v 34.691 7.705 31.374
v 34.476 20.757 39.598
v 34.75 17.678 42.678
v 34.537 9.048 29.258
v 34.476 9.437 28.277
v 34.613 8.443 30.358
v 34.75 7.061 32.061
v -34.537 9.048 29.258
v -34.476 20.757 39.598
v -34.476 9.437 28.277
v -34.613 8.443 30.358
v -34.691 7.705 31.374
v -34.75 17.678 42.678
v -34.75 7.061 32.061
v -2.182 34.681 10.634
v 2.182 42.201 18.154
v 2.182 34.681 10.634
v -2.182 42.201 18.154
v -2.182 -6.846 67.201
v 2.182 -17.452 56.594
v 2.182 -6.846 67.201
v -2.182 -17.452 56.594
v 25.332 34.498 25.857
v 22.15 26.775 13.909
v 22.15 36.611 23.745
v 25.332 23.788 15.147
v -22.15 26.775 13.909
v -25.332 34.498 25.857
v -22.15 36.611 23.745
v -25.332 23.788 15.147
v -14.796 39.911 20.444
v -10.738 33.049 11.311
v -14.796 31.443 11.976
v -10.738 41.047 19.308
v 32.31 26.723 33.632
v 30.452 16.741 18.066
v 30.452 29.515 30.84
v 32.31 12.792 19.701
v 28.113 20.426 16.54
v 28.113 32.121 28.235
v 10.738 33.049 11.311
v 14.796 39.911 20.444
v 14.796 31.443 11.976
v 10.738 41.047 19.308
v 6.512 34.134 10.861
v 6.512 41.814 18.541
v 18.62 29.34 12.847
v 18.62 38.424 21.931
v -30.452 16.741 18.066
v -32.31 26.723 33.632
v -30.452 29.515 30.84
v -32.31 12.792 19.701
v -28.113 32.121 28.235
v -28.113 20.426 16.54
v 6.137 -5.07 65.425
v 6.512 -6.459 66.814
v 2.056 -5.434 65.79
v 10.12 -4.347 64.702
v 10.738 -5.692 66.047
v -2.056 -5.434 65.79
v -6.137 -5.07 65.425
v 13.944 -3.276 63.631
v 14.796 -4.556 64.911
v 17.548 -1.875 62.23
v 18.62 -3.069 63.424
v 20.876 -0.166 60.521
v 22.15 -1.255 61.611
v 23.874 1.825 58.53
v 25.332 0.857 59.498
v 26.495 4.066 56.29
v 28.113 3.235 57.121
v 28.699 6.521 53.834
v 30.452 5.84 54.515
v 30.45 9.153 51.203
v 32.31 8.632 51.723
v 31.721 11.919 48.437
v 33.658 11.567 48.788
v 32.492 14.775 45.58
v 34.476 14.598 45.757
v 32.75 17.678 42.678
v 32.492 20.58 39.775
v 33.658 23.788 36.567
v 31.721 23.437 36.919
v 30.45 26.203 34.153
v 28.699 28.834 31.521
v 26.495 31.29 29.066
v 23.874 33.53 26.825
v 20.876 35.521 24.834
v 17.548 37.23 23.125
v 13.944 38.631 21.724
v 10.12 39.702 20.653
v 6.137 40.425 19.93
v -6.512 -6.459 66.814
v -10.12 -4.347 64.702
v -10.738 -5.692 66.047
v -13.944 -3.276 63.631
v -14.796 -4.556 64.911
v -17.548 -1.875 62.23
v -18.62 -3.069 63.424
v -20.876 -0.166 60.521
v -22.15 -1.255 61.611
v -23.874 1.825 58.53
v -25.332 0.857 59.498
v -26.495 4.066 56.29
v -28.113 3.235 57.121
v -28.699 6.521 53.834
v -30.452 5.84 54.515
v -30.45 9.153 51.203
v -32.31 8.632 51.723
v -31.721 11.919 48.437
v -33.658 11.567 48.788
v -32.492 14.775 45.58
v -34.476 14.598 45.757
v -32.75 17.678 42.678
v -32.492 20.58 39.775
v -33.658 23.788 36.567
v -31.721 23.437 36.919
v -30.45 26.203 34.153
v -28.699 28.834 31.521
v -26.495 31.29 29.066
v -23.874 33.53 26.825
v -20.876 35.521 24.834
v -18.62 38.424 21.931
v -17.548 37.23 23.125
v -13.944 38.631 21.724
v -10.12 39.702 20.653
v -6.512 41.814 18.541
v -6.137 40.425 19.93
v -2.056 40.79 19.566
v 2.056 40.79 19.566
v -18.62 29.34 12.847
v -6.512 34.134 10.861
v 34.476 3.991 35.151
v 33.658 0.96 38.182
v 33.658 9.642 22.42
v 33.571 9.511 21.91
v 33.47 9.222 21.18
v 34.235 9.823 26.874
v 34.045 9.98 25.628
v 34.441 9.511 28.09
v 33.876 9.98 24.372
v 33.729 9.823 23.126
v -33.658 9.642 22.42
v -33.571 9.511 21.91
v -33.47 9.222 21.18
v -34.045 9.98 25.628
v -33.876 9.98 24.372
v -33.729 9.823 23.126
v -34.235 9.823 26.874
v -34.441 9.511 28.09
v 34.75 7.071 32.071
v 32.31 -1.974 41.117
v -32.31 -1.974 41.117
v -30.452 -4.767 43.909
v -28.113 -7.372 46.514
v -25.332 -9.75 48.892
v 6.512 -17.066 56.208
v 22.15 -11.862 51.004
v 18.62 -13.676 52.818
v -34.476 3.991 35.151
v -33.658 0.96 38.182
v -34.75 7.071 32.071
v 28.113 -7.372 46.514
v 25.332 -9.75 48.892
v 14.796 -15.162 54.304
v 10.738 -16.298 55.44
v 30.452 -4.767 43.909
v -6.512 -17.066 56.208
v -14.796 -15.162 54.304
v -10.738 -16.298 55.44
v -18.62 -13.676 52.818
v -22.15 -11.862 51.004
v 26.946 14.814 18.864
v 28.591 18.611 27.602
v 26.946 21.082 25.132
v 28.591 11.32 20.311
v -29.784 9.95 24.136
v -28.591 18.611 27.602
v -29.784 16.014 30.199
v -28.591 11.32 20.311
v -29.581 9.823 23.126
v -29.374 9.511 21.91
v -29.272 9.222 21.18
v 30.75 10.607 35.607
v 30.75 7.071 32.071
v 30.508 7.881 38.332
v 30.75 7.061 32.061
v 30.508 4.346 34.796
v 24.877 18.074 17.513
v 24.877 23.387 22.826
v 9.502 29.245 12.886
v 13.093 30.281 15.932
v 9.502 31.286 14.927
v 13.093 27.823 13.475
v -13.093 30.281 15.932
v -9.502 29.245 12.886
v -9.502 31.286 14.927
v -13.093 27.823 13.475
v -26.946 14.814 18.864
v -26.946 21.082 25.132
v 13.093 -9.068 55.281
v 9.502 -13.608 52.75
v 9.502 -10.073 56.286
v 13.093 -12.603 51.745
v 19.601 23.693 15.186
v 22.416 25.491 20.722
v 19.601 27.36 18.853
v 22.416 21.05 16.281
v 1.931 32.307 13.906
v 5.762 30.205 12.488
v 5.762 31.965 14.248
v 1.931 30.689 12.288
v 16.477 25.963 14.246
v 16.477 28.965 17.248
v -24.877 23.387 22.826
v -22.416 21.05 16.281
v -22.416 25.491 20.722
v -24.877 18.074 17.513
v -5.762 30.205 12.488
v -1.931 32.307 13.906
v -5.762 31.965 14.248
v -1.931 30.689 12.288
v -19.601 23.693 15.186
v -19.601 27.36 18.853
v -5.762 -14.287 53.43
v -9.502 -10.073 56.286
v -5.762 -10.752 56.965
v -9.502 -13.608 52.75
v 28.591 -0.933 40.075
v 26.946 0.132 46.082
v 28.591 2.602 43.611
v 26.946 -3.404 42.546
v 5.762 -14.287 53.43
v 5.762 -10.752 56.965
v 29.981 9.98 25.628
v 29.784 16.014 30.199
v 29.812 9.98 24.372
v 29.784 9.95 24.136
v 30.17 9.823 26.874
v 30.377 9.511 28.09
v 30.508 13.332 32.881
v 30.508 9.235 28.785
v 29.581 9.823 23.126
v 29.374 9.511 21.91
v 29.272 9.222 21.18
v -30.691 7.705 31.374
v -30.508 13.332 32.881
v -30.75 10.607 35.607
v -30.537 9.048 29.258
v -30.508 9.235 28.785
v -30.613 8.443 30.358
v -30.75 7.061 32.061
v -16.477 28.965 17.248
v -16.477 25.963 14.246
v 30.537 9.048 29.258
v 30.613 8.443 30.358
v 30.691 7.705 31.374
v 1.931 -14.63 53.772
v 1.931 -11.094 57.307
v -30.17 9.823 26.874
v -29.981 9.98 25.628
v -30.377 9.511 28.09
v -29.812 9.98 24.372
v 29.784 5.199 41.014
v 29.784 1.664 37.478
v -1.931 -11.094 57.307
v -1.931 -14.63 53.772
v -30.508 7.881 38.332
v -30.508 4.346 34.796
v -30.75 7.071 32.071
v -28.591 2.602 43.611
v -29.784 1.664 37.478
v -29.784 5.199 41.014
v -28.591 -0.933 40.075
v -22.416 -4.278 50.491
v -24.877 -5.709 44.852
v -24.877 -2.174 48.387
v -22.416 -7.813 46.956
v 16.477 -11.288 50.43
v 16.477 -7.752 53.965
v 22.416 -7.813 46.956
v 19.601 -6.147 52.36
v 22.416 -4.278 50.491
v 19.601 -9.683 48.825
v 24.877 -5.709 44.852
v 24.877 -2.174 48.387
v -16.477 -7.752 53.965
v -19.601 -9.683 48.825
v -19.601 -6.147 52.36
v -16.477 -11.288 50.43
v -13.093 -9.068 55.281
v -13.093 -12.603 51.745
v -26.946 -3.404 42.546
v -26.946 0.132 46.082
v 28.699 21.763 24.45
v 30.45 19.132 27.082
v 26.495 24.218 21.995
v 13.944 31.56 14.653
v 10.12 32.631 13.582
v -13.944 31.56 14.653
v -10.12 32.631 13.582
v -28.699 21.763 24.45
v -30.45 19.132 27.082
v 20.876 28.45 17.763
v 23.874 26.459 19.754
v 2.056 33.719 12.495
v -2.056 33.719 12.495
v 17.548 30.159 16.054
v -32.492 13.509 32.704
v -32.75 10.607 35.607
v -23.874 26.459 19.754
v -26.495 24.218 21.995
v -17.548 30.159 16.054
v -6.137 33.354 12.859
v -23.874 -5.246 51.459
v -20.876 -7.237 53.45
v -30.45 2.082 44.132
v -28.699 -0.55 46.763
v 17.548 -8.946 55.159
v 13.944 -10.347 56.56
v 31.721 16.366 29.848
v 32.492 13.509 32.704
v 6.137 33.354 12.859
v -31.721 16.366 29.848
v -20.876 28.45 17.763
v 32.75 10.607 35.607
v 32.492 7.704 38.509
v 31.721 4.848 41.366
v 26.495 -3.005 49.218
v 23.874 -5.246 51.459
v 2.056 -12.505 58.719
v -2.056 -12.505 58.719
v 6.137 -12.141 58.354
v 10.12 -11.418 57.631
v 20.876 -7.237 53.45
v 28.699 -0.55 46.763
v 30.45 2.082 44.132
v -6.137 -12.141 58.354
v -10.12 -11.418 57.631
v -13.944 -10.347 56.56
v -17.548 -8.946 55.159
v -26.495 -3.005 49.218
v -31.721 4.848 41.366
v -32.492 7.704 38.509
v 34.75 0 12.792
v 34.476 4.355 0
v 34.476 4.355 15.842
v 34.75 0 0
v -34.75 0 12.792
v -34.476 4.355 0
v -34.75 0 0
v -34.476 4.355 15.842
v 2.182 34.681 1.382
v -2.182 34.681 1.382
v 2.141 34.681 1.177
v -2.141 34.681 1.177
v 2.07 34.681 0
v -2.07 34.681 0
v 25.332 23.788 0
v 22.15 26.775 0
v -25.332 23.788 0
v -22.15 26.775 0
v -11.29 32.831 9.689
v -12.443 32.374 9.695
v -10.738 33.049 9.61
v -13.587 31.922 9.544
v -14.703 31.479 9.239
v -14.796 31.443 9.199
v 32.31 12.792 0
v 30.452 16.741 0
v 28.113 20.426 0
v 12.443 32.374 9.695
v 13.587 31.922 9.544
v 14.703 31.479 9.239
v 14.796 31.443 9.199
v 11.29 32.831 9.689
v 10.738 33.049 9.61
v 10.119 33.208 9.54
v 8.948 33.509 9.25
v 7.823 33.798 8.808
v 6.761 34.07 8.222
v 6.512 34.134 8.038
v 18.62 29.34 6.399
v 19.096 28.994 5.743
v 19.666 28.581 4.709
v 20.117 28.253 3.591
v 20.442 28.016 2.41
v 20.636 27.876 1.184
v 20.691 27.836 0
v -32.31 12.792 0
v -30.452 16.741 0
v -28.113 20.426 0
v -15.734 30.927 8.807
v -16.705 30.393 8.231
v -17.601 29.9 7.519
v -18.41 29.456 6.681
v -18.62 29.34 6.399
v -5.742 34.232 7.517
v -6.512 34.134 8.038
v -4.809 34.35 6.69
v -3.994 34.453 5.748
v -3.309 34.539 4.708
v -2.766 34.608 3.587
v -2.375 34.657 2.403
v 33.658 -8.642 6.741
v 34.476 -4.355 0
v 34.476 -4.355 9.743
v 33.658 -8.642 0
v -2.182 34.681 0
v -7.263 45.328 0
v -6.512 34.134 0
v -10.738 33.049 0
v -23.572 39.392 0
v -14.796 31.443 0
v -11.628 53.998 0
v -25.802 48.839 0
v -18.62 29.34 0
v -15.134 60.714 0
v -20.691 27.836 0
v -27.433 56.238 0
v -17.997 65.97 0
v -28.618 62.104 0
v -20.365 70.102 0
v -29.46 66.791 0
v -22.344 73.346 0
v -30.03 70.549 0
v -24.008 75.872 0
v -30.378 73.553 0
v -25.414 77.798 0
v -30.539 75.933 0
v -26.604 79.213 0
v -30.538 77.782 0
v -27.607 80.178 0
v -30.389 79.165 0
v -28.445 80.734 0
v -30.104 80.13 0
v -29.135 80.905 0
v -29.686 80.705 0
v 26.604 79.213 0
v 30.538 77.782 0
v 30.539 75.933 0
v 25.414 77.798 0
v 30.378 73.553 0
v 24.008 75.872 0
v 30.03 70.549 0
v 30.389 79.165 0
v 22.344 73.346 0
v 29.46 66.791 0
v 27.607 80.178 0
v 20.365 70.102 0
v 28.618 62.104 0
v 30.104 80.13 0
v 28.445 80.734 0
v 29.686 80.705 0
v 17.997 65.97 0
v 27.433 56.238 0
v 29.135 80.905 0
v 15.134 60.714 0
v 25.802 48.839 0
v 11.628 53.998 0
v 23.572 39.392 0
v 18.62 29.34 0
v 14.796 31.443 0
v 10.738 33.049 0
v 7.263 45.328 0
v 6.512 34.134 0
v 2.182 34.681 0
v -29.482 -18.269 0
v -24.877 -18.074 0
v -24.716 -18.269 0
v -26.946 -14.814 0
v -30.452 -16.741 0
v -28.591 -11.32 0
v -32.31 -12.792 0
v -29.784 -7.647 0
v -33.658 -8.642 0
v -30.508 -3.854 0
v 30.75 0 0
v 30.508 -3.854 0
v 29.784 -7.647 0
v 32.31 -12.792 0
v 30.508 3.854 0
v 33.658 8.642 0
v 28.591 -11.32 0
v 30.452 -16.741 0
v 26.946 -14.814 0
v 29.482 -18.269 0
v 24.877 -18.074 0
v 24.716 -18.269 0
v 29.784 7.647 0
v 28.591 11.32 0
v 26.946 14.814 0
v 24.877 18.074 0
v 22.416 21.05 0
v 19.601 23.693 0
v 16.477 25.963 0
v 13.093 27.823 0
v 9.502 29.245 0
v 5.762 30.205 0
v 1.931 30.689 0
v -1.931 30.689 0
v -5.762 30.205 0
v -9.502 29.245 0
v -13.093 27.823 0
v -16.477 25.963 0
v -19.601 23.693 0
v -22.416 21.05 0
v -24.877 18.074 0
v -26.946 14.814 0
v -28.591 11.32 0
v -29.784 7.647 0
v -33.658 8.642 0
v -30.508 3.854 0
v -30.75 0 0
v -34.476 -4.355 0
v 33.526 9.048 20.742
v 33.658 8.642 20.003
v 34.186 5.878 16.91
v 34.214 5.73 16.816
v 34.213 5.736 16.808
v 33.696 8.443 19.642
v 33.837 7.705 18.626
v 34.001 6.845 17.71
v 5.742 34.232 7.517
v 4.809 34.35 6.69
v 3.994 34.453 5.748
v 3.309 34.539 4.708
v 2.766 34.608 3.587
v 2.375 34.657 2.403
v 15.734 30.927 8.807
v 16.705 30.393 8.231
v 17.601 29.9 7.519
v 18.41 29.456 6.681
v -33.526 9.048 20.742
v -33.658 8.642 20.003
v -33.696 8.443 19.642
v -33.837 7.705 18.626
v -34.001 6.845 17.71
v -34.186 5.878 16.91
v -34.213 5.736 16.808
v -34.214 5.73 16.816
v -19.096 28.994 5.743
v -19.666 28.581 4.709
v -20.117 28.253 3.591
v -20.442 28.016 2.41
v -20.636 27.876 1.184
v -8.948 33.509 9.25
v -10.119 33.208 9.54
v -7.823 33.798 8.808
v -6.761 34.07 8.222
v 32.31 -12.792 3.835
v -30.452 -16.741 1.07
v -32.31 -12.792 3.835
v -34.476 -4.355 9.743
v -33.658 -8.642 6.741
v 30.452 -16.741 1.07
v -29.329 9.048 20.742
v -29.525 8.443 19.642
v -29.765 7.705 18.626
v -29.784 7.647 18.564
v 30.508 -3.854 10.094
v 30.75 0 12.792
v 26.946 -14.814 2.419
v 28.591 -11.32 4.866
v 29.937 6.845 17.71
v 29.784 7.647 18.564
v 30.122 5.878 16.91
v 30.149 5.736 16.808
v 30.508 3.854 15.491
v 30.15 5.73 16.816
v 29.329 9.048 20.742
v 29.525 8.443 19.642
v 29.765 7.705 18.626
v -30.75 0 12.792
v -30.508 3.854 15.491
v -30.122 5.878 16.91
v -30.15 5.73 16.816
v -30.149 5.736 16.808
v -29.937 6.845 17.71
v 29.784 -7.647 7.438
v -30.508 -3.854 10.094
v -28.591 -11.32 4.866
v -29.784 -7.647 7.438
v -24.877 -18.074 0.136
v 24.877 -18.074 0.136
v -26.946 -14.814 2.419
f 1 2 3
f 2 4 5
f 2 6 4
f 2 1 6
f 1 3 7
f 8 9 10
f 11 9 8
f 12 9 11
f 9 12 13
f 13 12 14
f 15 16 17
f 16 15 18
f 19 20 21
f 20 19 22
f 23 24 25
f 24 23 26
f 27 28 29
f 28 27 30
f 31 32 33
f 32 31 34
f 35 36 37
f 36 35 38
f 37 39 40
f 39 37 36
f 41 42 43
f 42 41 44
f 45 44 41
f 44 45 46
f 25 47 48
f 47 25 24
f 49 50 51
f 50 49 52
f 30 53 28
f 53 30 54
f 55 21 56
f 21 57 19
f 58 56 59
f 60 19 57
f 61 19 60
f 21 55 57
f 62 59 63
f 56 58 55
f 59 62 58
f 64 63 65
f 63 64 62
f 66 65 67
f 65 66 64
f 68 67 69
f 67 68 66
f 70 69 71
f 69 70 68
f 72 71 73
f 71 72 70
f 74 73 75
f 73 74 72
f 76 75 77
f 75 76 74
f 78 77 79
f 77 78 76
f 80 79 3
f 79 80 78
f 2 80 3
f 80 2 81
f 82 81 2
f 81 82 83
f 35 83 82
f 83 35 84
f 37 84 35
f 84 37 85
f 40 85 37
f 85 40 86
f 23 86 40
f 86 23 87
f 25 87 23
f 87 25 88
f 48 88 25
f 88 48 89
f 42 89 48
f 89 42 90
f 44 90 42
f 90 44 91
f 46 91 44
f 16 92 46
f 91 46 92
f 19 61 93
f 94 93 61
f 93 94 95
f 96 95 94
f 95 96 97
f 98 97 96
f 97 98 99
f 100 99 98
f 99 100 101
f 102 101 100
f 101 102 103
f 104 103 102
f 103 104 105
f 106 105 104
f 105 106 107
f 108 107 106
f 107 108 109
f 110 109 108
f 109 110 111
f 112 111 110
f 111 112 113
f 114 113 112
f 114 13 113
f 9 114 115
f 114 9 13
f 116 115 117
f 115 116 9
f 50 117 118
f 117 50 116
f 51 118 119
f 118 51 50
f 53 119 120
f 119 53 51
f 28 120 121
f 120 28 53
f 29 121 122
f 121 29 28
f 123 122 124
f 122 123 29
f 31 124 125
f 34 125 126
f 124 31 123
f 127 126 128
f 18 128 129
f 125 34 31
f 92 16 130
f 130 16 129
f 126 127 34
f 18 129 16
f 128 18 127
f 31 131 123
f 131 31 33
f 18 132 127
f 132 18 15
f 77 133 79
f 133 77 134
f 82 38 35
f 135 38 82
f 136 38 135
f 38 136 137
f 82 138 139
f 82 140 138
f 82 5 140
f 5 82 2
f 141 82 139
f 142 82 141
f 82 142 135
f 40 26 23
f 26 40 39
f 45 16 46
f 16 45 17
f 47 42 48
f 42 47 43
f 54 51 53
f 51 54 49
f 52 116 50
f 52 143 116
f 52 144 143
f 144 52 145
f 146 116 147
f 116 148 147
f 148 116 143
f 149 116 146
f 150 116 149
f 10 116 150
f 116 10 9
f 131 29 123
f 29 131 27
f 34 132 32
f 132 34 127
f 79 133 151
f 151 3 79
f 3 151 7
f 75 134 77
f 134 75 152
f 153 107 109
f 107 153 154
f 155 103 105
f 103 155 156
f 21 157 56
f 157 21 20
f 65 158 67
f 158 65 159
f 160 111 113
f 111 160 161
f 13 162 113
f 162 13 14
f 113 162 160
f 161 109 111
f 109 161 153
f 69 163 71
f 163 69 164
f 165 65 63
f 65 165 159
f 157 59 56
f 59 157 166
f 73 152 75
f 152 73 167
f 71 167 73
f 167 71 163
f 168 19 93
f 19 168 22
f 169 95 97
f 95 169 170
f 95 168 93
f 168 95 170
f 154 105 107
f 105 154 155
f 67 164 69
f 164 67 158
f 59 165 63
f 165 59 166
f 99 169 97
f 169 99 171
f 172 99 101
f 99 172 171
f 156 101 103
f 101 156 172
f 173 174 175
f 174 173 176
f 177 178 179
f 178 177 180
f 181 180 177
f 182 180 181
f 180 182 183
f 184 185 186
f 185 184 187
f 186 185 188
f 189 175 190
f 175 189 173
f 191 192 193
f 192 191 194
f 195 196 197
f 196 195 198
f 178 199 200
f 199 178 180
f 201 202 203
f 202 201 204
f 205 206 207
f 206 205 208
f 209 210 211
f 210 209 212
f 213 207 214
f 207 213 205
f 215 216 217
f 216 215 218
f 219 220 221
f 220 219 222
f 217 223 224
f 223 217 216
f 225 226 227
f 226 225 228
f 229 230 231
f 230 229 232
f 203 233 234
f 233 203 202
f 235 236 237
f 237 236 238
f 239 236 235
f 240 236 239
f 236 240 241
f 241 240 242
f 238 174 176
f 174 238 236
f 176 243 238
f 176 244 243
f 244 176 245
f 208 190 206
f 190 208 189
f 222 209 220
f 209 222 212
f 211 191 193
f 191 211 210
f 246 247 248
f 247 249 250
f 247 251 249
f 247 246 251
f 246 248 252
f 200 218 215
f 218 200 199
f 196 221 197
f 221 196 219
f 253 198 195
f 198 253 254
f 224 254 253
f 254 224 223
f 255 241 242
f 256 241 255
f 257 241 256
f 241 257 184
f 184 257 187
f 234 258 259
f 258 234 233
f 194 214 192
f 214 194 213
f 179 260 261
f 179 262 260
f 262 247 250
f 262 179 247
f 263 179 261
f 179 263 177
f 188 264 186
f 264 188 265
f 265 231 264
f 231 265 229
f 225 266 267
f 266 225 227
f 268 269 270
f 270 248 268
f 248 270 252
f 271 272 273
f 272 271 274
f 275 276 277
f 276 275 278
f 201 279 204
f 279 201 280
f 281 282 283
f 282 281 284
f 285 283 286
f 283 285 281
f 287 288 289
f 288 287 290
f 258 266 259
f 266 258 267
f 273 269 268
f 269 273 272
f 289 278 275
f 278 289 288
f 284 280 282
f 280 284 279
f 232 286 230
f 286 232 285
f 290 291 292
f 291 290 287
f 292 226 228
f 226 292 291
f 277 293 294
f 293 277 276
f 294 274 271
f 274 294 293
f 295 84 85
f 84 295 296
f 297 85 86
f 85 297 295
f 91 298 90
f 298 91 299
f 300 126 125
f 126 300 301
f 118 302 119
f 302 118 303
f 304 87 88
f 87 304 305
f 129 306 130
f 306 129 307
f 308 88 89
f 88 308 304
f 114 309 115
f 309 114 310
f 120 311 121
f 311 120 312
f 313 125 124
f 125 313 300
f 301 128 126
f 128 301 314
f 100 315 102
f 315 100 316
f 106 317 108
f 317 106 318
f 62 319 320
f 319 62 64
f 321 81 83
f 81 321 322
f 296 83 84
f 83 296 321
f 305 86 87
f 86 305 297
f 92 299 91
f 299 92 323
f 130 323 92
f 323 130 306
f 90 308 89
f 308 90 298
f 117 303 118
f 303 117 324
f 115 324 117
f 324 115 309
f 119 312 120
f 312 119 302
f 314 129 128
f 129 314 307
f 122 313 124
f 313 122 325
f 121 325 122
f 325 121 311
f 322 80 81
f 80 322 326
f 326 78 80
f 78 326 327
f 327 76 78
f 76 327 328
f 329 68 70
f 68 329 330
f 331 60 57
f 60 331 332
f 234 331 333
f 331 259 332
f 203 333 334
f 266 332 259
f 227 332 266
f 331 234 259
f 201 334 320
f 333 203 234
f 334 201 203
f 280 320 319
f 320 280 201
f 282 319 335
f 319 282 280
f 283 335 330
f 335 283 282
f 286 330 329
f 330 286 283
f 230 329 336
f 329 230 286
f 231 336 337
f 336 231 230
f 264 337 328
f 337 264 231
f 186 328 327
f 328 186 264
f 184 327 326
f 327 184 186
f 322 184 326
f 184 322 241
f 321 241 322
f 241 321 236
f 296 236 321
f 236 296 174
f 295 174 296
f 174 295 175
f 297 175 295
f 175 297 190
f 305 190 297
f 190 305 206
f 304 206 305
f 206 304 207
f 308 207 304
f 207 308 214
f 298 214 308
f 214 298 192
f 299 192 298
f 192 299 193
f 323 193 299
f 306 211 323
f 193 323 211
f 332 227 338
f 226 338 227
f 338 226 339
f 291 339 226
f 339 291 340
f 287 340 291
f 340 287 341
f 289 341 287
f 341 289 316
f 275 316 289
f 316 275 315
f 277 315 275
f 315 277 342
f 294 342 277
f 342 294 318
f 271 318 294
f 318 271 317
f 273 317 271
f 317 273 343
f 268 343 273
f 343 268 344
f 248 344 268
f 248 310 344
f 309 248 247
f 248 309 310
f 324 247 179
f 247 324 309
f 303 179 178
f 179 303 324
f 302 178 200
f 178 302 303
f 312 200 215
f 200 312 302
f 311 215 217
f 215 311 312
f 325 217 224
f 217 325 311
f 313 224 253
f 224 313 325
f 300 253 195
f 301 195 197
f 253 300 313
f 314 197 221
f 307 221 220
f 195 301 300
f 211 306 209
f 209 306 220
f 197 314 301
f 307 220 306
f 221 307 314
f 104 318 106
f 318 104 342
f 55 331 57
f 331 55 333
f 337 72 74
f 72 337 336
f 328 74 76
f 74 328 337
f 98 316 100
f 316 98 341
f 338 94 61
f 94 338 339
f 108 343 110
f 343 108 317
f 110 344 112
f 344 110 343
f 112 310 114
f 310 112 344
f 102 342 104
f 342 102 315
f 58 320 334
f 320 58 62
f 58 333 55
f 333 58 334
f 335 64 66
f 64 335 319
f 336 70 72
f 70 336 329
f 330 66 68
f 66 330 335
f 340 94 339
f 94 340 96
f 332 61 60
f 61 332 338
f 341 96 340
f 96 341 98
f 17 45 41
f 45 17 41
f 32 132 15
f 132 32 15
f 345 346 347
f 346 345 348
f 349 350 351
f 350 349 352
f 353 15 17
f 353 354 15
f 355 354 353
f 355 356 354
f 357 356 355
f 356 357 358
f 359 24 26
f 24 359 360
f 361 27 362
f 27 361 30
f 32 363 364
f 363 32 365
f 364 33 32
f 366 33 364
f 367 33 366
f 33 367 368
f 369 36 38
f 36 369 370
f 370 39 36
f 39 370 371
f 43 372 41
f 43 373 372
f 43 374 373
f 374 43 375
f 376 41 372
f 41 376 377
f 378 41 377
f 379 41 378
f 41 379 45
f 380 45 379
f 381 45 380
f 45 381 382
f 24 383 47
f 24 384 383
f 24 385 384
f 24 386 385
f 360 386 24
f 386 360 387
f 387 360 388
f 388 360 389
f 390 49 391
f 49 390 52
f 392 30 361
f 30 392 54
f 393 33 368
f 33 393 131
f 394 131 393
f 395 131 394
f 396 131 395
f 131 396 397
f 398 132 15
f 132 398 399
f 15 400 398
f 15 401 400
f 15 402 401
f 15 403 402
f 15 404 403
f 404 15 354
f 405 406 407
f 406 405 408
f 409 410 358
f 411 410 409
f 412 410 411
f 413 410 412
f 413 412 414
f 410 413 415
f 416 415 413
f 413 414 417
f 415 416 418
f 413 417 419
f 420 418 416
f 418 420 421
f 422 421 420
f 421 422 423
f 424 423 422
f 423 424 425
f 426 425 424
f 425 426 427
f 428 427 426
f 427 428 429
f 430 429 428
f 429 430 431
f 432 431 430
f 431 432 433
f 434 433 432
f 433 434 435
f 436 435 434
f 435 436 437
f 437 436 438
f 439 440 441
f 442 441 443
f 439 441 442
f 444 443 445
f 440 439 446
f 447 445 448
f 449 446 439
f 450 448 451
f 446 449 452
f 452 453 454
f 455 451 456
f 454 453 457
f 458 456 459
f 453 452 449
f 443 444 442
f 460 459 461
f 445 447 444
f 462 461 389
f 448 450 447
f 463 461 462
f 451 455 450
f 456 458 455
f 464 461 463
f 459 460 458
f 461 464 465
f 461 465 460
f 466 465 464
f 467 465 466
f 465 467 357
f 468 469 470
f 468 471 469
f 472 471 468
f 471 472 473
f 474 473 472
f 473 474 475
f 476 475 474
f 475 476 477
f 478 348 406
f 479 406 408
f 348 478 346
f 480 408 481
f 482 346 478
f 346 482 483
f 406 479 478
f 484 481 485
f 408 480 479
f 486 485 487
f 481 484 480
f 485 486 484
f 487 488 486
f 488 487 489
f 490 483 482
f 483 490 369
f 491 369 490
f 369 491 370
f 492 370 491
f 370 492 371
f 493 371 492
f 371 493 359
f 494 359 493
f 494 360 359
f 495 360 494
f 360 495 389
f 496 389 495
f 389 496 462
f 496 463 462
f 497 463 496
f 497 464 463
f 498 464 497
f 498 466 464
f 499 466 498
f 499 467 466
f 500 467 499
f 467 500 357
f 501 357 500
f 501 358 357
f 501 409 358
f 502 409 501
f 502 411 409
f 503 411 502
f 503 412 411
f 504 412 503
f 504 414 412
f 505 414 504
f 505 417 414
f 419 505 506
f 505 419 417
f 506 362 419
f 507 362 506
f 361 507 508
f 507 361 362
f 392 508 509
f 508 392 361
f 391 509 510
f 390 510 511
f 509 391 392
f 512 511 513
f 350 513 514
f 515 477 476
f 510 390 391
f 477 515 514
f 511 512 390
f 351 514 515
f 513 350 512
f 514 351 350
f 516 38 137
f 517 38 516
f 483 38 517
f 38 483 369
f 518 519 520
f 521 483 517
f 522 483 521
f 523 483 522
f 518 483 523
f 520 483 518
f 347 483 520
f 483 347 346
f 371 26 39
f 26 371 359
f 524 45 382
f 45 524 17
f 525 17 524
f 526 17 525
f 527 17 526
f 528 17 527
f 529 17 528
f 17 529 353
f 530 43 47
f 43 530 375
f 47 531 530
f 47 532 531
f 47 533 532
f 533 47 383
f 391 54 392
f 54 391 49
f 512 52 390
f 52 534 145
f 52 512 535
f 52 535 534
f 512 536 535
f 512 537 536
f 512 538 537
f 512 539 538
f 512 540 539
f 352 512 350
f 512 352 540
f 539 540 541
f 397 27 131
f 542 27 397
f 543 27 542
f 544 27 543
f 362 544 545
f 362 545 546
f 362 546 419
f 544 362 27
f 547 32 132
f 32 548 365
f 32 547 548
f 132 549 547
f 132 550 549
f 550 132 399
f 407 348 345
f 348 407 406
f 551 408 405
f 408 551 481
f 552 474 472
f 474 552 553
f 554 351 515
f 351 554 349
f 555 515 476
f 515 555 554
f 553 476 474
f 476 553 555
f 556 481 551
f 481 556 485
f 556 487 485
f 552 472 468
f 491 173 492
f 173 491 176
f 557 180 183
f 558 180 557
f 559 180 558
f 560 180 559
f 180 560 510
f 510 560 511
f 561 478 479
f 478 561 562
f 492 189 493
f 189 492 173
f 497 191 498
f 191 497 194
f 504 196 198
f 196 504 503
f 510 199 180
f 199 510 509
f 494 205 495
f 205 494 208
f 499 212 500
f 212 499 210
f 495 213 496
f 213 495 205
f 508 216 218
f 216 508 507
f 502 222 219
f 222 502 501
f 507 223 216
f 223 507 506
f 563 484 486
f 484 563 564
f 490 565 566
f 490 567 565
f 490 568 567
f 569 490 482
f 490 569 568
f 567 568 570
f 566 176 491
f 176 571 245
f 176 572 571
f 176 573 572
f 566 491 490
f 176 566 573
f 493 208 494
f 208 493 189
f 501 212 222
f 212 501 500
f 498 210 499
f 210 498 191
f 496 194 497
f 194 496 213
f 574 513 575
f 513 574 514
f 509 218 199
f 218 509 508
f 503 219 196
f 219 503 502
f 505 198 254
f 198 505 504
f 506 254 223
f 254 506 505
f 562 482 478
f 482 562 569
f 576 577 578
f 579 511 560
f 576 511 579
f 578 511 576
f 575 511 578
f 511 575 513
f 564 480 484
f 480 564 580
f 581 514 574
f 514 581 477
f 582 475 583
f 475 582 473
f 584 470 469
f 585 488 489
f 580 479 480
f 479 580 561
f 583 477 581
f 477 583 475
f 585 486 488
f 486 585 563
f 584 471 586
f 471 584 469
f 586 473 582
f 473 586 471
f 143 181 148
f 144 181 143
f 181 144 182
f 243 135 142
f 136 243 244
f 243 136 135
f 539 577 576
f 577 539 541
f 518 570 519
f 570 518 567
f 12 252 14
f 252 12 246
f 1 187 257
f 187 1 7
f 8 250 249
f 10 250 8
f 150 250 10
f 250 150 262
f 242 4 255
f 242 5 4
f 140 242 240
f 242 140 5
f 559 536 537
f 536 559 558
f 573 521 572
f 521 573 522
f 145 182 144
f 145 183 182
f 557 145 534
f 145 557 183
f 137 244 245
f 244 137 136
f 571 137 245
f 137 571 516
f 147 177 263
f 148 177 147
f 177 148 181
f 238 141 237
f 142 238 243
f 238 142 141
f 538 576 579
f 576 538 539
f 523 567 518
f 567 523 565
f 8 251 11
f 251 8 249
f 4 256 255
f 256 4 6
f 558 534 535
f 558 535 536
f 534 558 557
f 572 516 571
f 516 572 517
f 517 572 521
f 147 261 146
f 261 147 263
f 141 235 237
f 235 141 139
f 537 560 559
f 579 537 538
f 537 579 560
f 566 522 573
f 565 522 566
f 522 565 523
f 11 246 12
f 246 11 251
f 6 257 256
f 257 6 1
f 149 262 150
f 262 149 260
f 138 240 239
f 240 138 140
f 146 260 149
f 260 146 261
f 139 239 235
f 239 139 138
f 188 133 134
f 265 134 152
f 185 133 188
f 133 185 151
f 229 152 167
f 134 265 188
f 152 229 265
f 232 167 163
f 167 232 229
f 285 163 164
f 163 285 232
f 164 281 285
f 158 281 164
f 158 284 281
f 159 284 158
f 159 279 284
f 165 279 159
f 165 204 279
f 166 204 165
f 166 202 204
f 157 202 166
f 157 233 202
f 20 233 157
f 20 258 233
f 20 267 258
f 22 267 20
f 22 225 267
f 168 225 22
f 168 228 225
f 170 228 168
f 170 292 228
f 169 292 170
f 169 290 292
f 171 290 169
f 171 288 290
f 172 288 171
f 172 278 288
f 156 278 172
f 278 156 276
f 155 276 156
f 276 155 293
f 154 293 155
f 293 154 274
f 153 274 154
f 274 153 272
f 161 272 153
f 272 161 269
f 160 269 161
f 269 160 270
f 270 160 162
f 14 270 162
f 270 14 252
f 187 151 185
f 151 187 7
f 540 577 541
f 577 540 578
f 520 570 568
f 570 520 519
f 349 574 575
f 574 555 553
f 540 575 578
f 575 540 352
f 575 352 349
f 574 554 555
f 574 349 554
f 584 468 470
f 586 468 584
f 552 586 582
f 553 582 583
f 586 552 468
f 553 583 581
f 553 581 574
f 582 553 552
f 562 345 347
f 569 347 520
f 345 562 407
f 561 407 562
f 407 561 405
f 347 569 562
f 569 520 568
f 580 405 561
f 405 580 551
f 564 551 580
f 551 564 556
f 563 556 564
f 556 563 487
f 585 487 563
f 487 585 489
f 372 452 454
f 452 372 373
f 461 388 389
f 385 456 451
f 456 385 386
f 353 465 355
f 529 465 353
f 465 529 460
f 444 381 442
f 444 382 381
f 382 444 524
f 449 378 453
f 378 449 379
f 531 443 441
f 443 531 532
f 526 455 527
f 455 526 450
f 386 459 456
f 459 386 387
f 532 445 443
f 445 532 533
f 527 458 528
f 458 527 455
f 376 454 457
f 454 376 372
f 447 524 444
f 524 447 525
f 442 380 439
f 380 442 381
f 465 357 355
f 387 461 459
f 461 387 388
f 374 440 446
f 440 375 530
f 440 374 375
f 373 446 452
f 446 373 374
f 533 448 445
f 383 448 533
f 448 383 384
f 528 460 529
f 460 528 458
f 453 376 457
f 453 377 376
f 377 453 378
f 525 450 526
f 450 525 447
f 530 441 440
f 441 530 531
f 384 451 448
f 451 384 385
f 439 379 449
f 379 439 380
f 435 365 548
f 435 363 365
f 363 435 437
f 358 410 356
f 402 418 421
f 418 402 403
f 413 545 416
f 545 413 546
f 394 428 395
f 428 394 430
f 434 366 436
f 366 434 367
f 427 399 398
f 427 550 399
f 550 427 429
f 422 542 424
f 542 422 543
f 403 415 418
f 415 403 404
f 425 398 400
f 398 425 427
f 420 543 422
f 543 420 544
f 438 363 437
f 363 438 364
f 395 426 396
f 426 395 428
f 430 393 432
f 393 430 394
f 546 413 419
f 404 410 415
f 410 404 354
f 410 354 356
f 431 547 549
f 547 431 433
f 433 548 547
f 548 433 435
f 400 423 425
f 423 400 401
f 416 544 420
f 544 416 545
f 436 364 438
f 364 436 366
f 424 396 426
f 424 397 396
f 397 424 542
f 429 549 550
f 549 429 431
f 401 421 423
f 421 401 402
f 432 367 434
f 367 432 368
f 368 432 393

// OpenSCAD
module make_base(){
    base_h = 25;
    inner_d = 65.5;
    thickness = 2;
    
    difference(){
        union(){
            // top
            if(1){
            difference(){
                translate([0,0,base_h])
                rotate([-45,0,0])
                translate([0,0,base_h/2]){
                    difference(){
                        cylinder(d=65.5+thickness*2, h=base_h, center=true, $fn=50);
                        cylinder(d=65.5-thickness*2, h=base_h*2, center=true, $fn=50);
                        
                        // clock cutout
                        color("red")
                        //translate([-10,0,0])
                        translate([0,0,base_h*1.5-10])
                        cylinder(d=65.5, h=base_h*2, center=true, $fn=50);
                    }
                }
                
                if(1)
                translate([0,0,base_h])
                rotate([-45/2,0,0])
                translate([0,0,-100/2])
                cube([300,300,100], center=true);
            }
            }
            
            // bottom
            if(1)
            intersection(){
                translate([0,0,base_h/2]){
                    difference(){
                        cylinder(d=65.5+thickness*2, h=base_h, center=true, $fn=50);
                        cylinder(d=65.5-thickness*2, h=base_h*2, center=true, $fn=50);
                    }
                }
                
                translate([0,0,base_h])
                rotate([-45/2,0,0])
                translate([0,0,-100/2])
                cube([300,300,100], center=true);
            }
        }
        
        // notch cutout
        translate([0,0,base_h])
        color("blue"){
            //translate([0,0,base_h-20/2])
            rotate([0,90,0])
            cylinder(d=20, h=100, center=true, $fn=50);
            
            //cube([10,10,10], center=true);
            
            rotate([-45,0,0])
            translate([0,-40*2/2,0])
            cube([200,40*2,20], center=true);
            
            rotate([35,0,0])
            translate([0,-40*2/2,60/2-20/2])
            cube([200,40*2,60], center=true);
        
        }

    }// end diff
    
    if(0)
    color("blue")
    translate([0,0,base_h])
    rotate([-45/2,0,0])
    translate([0,-40,0])
    scale([1,2,1])
    rotate([0,90,0])
    cylinder(d=50, h=100, center=true, $fn=50);

    // stabilization foot
    for(i=[-1:2:1])
    rotate([0,0,20*i])
    difference(){
        translate([0,65/2,0])
        rotate([-90-5,0,0])
        cylinder(d1=20, d2=0, h=100, $fn=50);
        translate([0,0,-100/2])
        cube([300,300,100], center=true);
    }

}

make_base();
